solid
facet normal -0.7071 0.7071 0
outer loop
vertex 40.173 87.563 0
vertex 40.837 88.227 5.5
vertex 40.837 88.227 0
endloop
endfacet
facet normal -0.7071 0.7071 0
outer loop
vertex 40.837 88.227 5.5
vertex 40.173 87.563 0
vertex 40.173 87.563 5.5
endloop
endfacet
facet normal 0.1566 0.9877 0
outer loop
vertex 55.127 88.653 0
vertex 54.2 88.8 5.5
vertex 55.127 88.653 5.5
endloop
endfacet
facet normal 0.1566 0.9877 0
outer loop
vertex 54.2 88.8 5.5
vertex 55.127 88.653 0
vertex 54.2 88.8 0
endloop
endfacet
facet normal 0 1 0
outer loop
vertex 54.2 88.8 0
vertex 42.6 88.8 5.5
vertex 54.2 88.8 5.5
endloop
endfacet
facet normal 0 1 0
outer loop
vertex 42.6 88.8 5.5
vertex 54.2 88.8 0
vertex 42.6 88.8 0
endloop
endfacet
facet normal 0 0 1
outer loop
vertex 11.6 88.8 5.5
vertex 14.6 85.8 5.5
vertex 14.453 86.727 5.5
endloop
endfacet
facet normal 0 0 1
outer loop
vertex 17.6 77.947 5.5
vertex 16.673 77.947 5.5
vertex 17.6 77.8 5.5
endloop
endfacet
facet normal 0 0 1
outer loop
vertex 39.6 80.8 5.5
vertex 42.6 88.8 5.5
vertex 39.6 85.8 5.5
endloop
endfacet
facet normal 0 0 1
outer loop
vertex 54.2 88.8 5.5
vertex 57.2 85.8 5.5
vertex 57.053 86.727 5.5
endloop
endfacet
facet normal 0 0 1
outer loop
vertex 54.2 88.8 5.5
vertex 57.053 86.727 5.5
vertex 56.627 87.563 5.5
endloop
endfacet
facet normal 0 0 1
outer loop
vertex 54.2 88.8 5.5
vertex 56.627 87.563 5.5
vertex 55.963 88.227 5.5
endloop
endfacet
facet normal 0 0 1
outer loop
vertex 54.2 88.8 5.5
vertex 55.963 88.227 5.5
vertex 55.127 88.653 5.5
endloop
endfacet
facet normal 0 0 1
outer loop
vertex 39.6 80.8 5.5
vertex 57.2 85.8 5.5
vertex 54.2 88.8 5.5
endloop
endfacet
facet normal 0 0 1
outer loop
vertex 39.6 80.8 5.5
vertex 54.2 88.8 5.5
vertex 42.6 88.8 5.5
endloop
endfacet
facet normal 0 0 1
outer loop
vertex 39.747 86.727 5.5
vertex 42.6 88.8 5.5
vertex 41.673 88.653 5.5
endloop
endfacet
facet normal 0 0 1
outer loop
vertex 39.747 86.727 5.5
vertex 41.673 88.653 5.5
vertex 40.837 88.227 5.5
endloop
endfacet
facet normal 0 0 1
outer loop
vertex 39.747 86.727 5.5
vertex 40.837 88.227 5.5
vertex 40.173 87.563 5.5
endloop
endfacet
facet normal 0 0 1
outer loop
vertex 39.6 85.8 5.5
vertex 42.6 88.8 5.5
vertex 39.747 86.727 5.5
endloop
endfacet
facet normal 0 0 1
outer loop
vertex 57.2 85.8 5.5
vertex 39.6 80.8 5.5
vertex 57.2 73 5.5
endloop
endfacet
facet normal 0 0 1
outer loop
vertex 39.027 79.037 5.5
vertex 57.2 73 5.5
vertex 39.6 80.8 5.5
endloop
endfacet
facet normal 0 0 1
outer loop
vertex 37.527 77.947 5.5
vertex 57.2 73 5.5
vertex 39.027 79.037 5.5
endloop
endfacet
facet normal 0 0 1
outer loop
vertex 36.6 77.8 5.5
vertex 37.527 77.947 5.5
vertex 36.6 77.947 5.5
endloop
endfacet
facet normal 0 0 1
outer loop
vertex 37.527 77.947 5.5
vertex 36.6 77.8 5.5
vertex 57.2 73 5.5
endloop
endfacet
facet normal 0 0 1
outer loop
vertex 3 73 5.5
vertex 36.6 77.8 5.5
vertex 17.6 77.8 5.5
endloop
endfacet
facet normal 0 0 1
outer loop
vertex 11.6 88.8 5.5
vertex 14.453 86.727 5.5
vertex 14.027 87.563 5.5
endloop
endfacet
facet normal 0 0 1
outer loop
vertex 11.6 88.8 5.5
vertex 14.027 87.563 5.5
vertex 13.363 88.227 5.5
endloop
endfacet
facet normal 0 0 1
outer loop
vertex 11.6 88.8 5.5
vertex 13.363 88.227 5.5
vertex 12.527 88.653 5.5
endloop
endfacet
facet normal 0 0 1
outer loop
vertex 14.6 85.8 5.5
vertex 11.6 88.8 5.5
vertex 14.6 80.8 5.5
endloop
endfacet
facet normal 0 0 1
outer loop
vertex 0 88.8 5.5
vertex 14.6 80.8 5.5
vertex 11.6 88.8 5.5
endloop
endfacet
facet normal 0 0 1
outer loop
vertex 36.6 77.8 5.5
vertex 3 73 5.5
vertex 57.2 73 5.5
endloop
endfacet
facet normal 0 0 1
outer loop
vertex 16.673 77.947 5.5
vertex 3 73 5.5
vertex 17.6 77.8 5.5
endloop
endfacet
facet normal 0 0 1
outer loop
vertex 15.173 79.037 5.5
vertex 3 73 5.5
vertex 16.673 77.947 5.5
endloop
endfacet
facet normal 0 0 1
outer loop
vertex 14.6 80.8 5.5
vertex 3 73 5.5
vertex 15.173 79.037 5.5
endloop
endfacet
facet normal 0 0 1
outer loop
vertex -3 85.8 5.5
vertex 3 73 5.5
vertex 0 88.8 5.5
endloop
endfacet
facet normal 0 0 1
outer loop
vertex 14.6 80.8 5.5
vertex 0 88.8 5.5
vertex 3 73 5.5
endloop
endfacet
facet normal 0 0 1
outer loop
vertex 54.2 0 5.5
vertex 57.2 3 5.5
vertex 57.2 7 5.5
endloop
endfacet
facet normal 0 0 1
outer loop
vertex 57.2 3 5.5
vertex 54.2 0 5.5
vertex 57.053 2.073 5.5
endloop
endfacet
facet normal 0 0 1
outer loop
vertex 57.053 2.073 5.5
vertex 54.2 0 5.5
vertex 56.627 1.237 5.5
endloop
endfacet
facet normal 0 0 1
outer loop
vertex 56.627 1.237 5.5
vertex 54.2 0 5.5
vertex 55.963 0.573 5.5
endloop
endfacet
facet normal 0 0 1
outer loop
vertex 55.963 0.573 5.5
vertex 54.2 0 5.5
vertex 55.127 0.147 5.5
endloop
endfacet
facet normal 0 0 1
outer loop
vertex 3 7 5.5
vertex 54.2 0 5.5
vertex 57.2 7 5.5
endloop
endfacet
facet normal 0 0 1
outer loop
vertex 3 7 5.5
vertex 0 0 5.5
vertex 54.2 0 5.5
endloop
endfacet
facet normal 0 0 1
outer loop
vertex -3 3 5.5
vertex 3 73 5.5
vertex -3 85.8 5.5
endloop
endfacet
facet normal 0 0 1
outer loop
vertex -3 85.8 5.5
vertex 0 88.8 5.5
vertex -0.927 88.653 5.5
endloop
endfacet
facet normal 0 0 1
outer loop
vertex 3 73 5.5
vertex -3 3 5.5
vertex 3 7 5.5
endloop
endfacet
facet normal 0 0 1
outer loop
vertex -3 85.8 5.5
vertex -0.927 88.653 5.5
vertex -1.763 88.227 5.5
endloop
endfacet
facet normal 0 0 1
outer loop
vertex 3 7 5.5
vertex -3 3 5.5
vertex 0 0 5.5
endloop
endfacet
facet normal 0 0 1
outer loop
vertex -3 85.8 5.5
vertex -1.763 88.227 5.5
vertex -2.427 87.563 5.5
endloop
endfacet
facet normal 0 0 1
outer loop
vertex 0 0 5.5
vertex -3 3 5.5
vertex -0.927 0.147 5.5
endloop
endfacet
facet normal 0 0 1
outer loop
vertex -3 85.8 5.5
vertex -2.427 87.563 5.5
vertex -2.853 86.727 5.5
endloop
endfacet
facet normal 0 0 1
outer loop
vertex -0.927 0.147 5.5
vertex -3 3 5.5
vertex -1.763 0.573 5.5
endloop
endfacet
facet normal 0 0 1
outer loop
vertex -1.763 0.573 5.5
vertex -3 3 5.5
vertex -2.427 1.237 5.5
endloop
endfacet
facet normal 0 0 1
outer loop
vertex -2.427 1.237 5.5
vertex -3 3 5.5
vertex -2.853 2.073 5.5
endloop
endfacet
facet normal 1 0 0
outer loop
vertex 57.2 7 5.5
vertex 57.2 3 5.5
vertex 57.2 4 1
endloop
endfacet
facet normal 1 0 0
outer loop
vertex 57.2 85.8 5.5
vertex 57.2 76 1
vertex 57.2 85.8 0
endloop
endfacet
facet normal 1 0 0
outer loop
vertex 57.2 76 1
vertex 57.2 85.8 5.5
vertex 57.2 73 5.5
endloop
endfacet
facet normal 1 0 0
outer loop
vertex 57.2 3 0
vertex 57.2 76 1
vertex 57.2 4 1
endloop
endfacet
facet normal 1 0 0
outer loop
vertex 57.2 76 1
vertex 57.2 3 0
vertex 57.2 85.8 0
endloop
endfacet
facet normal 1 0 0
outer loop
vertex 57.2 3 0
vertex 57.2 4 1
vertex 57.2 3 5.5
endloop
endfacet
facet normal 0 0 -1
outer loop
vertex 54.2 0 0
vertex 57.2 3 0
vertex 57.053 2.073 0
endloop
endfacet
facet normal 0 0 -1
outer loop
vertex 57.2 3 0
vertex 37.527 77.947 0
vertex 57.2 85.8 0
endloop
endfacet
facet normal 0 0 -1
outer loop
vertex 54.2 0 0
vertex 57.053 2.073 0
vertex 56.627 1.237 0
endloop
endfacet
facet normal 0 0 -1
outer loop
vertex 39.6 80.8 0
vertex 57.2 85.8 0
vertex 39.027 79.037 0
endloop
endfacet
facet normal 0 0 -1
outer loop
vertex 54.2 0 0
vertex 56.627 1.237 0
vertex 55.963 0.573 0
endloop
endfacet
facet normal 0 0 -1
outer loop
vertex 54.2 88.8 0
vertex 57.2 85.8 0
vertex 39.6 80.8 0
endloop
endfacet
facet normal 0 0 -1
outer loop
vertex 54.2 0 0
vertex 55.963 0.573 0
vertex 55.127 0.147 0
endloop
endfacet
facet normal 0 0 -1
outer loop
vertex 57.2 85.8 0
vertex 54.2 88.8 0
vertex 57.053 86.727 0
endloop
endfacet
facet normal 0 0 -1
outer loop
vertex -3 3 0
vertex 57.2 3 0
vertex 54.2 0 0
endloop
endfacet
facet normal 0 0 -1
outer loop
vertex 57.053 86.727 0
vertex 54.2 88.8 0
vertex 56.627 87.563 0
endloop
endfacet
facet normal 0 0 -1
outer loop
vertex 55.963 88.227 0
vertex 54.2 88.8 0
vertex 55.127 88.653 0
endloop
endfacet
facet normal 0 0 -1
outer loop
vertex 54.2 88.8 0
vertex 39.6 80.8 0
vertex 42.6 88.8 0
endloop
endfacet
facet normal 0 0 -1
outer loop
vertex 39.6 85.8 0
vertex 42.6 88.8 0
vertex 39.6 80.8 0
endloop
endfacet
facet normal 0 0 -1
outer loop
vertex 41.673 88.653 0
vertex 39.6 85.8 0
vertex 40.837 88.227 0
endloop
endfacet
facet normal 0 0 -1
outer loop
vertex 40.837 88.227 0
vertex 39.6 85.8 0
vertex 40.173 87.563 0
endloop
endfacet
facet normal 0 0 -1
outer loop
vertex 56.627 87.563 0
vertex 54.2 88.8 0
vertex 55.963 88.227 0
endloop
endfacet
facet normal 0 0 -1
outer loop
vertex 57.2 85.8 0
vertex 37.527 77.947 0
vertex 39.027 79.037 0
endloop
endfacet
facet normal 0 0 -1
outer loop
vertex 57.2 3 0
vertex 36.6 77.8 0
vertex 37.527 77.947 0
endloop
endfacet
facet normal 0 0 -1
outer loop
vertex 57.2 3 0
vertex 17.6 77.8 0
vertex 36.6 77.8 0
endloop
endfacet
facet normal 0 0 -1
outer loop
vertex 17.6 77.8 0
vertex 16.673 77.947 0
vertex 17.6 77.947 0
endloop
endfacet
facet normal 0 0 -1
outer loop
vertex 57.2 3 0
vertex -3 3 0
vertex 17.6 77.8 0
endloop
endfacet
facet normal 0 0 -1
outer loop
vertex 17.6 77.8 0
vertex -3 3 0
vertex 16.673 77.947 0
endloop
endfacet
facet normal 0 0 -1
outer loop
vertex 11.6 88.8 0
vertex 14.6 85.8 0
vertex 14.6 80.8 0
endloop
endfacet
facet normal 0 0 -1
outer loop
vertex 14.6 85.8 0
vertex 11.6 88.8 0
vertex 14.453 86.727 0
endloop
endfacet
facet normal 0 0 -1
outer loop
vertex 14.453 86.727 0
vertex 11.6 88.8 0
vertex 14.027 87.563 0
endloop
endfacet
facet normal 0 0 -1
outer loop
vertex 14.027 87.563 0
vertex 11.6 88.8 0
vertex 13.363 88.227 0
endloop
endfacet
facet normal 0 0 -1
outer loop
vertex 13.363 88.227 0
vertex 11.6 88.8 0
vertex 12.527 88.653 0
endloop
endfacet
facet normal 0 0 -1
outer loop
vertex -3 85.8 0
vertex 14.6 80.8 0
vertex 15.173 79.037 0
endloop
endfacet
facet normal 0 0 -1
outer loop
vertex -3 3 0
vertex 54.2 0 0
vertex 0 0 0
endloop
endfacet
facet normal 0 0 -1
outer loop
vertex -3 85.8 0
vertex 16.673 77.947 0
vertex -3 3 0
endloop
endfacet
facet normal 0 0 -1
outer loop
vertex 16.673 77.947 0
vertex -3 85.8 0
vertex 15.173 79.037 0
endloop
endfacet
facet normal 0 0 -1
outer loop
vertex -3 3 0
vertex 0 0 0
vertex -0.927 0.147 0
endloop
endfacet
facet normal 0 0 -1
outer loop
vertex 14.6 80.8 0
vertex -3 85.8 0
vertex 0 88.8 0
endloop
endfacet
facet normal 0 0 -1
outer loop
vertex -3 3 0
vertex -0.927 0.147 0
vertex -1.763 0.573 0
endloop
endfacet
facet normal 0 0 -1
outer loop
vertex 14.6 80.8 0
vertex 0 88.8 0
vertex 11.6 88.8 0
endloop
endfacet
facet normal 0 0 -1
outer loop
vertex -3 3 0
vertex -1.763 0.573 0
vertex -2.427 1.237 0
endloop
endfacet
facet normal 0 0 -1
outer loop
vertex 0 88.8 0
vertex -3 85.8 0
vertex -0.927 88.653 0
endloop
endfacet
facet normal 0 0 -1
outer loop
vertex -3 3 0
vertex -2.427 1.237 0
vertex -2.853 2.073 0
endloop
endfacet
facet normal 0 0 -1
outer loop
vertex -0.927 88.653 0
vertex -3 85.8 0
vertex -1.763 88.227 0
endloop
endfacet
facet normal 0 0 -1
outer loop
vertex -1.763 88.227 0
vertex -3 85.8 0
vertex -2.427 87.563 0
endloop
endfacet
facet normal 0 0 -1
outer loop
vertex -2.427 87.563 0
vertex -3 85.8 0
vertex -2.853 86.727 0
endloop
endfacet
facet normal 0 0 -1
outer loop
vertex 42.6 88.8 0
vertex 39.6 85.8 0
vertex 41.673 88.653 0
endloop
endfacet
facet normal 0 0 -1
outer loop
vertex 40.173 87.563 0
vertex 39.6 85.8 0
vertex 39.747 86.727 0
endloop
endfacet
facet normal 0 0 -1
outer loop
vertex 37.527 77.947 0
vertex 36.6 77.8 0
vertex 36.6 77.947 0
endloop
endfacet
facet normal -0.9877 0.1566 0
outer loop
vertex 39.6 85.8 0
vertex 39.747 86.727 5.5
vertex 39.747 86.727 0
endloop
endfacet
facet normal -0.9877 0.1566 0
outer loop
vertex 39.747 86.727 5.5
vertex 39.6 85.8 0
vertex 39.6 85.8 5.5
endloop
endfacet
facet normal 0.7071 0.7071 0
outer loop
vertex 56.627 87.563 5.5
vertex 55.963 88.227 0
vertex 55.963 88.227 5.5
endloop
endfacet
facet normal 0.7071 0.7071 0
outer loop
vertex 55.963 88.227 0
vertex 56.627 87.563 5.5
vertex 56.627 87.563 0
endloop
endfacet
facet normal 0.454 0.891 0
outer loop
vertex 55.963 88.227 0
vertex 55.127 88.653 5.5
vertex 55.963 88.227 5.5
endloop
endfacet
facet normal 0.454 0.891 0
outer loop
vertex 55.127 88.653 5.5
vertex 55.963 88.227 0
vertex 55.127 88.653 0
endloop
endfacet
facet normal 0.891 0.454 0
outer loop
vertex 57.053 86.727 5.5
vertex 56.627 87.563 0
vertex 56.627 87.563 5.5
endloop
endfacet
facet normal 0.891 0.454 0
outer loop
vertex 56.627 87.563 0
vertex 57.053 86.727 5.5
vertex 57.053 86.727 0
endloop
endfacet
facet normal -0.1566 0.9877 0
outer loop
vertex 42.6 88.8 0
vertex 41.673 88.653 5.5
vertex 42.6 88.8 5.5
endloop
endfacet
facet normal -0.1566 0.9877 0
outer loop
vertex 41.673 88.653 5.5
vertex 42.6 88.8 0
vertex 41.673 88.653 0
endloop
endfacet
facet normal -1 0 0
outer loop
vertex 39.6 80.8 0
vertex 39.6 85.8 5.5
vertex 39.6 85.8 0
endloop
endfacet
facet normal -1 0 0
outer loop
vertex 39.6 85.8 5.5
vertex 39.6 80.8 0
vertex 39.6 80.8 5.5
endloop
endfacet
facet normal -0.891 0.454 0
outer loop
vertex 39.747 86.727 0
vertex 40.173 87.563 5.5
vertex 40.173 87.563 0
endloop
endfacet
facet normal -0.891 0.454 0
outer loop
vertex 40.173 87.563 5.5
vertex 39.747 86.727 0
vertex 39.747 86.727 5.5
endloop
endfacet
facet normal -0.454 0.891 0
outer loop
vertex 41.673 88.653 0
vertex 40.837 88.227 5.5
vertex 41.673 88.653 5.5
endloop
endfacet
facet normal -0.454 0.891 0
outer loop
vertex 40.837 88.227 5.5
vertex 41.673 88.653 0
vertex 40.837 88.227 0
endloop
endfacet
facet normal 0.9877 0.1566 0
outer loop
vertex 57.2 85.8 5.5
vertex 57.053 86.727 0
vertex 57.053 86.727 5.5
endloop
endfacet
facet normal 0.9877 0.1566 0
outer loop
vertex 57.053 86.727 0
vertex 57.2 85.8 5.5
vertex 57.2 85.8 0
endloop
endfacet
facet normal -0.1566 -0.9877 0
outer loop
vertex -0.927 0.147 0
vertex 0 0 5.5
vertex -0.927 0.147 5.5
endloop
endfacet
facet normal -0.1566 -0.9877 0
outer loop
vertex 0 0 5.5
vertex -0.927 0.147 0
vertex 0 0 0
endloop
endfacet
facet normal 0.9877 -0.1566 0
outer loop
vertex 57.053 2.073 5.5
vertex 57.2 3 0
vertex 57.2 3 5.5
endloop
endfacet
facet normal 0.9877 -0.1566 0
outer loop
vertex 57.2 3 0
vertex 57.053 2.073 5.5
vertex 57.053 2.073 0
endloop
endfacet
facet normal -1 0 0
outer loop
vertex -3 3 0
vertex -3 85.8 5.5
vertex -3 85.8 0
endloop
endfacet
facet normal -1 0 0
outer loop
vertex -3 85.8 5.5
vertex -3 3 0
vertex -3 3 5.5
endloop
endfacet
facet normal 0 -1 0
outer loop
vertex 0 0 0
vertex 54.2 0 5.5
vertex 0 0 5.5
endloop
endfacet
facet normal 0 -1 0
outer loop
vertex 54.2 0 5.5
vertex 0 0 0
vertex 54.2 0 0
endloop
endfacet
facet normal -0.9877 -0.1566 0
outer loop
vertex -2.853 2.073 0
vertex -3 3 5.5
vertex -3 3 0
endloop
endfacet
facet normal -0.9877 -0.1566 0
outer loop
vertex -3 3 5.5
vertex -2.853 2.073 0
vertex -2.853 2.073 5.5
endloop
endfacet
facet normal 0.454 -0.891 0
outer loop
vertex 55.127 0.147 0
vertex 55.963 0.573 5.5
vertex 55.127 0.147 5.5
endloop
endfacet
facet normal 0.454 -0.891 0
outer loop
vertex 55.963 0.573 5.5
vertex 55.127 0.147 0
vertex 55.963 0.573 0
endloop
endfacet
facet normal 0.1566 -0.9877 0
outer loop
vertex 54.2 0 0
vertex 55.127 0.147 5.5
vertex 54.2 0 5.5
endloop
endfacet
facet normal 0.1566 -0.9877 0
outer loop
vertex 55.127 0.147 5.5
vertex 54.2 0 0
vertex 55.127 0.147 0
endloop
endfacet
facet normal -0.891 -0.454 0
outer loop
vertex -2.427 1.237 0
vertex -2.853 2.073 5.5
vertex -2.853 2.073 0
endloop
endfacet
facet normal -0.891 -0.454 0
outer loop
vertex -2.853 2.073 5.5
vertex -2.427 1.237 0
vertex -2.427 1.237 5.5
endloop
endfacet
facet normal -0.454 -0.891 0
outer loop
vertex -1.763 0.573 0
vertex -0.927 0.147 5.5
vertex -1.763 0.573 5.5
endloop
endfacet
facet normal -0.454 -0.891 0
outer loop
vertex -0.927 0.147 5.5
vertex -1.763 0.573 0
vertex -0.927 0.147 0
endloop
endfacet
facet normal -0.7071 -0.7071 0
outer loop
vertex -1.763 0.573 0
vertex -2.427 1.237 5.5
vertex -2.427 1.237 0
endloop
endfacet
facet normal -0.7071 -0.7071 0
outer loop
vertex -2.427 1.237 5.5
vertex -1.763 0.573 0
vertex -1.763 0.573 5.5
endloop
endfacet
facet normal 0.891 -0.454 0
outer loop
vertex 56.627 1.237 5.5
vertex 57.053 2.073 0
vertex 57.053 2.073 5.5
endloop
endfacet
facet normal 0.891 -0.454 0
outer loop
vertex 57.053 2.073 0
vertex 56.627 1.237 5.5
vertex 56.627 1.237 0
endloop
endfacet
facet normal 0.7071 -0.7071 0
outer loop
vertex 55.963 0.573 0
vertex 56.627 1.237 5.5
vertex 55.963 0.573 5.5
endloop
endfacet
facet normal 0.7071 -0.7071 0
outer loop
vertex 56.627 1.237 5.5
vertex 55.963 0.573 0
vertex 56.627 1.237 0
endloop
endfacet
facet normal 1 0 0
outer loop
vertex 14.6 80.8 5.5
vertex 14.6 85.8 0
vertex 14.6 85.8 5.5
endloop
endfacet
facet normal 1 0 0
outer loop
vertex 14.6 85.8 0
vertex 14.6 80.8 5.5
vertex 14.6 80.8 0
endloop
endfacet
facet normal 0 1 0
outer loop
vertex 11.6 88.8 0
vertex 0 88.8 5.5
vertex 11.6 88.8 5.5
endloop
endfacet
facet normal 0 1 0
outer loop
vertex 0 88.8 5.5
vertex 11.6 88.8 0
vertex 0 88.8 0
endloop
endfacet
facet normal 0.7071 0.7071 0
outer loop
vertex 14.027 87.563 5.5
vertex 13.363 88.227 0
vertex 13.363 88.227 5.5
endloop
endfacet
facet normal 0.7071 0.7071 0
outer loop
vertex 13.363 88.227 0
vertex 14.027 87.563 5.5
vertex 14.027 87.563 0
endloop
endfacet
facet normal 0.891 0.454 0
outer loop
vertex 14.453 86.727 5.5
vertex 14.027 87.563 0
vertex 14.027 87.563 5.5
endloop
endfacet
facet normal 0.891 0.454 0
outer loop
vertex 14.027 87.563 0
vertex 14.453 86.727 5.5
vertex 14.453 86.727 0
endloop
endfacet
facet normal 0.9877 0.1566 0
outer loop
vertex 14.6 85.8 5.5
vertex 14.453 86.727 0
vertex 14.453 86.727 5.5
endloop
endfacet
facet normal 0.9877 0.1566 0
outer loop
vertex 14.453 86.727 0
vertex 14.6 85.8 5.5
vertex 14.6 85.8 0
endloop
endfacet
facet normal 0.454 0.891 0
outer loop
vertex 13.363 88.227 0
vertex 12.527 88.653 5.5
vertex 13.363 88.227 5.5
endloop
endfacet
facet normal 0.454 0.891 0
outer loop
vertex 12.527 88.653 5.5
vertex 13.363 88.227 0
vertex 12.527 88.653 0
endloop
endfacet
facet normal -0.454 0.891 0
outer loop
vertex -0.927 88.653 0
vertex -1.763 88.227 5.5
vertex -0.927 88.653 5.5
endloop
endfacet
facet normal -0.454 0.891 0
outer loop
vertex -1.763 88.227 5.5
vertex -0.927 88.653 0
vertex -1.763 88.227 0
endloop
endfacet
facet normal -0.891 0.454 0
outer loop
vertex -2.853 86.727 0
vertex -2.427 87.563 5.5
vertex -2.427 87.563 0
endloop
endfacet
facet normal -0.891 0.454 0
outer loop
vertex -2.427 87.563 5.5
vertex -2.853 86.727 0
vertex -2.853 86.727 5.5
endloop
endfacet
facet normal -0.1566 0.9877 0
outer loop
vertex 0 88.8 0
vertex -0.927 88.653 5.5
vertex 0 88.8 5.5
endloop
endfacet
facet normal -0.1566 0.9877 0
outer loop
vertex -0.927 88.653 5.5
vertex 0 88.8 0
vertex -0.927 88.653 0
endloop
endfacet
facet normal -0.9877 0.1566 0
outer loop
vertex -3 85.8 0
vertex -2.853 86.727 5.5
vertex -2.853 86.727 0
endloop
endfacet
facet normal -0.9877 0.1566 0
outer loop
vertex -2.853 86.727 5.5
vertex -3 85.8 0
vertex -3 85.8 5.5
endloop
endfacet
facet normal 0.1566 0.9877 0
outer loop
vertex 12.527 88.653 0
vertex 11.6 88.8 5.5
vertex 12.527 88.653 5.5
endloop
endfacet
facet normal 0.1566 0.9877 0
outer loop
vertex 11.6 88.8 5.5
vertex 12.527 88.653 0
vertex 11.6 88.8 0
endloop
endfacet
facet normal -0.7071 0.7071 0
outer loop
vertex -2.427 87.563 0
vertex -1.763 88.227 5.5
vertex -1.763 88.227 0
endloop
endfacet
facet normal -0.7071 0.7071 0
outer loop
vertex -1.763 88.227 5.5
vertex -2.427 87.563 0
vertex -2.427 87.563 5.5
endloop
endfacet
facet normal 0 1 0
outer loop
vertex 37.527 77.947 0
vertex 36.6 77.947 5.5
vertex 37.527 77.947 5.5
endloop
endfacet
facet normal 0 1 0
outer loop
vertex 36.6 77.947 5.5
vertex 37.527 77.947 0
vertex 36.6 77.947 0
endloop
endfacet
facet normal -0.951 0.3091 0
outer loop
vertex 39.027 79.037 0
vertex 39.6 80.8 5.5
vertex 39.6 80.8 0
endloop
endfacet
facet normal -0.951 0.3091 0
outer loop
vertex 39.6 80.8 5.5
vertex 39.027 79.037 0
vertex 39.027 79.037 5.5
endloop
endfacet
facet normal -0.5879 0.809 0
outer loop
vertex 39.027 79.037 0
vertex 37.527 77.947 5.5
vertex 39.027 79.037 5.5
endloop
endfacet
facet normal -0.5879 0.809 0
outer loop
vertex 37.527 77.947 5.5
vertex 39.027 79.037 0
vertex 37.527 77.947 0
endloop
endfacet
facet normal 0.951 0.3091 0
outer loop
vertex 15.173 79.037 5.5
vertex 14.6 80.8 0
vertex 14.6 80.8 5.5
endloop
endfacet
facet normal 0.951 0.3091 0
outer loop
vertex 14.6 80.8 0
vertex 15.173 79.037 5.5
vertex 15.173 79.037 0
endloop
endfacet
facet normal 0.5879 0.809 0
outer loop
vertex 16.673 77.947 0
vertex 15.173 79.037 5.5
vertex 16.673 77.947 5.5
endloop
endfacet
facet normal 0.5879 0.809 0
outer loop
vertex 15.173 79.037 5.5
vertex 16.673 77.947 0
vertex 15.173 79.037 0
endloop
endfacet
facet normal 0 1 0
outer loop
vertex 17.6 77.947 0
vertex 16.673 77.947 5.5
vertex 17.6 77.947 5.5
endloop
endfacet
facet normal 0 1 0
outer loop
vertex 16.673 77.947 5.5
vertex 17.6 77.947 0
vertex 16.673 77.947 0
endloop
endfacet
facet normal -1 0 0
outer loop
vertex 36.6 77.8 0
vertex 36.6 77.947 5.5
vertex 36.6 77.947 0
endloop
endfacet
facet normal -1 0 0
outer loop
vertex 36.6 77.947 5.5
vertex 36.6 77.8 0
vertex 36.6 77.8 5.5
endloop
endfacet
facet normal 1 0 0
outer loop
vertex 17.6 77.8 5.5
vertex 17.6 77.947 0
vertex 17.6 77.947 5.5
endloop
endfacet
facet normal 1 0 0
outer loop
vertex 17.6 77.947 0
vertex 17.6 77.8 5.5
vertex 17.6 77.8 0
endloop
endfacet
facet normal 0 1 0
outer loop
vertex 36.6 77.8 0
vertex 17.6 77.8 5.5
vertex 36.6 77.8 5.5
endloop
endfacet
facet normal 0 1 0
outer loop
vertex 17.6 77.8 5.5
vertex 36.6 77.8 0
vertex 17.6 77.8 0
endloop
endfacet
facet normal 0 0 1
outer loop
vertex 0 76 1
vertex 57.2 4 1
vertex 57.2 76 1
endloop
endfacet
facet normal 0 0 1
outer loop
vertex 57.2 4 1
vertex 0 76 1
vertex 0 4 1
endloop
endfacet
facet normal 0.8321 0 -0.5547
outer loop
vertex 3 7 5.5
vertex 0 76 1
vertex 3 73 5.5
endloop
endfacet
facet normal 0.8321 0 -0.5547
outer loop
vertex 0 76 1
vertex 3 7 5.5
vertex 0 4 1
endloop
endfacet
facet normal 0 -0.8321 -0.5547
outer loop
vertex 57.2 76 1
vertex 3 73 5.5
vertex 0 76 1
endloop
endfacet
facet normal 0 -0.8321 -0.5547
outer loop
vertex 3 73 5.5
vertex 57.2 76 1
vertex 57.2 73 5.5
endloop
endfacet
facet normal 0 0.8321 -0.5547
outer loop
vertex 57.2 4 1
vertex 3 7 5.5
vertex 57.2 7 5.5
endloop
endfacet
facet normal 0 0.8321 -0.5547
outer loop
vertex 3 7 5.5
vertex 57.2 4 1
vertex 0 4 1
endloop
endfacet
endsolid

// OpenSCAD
cw = 54+0.2; // card width
ch = 85.6+0.2; // card height

bw = 3; // border width

fr = 3; // fillet radius

lg = 1000; // large vaule

ct = 0.6; // case thickness

sw = 25; // slot width
sh = 8; // slot height

module body_2d() {
    polygon([
        [0,0],
        [cw,0],
        [cw,          ch-fr],
        [cw/2+sw/2+fr,ch-fr],
        [cw/2+sw/2+fr,ch-fr-sh],
        [cw/2-sw/2-fr,ch-fr-sh],
        [cw/2-sw/2-fr,ch-fr],
        [0,           ch-fr],
    ]);
}

module body(th){
    difference() {
        minkowski() {
            $fn=20;
            translate([0,fr,0]) linear_extrude(th-0.01) body_2d();
            cylinder(r=fr, h=0.01);
        }
        //translate([-lg/2,-lg,0]) cube([lg,lg,lg]);
        
        translate([cw/2+sw/2-fr,ch-sh+fr,0]) cylinder(h=th, r=fr);
        translate([cw/2-sw/2+fr,ch-sh+fr,0]) cylinder(h=th, r=fr);
        translate([cw/2-sw/2+fr,ch-sh,0]) cube([sw-2*fr,fr,th]);
    }
}

th = 5.5; // plate thickness
st = 4.5; // slot thickness
kw = 72; // slot width
iw = 3; // inset width

difference() {
    body(th);

    #translate([lg/2,4+kw/2,th-st]) 
        linear_extrude(st, scale=[(lg-2*iw)/lg, (kw-2*iw)/kw])
        translate([-lg/2,-kw/2]) square([lg,kw]);
    
}
